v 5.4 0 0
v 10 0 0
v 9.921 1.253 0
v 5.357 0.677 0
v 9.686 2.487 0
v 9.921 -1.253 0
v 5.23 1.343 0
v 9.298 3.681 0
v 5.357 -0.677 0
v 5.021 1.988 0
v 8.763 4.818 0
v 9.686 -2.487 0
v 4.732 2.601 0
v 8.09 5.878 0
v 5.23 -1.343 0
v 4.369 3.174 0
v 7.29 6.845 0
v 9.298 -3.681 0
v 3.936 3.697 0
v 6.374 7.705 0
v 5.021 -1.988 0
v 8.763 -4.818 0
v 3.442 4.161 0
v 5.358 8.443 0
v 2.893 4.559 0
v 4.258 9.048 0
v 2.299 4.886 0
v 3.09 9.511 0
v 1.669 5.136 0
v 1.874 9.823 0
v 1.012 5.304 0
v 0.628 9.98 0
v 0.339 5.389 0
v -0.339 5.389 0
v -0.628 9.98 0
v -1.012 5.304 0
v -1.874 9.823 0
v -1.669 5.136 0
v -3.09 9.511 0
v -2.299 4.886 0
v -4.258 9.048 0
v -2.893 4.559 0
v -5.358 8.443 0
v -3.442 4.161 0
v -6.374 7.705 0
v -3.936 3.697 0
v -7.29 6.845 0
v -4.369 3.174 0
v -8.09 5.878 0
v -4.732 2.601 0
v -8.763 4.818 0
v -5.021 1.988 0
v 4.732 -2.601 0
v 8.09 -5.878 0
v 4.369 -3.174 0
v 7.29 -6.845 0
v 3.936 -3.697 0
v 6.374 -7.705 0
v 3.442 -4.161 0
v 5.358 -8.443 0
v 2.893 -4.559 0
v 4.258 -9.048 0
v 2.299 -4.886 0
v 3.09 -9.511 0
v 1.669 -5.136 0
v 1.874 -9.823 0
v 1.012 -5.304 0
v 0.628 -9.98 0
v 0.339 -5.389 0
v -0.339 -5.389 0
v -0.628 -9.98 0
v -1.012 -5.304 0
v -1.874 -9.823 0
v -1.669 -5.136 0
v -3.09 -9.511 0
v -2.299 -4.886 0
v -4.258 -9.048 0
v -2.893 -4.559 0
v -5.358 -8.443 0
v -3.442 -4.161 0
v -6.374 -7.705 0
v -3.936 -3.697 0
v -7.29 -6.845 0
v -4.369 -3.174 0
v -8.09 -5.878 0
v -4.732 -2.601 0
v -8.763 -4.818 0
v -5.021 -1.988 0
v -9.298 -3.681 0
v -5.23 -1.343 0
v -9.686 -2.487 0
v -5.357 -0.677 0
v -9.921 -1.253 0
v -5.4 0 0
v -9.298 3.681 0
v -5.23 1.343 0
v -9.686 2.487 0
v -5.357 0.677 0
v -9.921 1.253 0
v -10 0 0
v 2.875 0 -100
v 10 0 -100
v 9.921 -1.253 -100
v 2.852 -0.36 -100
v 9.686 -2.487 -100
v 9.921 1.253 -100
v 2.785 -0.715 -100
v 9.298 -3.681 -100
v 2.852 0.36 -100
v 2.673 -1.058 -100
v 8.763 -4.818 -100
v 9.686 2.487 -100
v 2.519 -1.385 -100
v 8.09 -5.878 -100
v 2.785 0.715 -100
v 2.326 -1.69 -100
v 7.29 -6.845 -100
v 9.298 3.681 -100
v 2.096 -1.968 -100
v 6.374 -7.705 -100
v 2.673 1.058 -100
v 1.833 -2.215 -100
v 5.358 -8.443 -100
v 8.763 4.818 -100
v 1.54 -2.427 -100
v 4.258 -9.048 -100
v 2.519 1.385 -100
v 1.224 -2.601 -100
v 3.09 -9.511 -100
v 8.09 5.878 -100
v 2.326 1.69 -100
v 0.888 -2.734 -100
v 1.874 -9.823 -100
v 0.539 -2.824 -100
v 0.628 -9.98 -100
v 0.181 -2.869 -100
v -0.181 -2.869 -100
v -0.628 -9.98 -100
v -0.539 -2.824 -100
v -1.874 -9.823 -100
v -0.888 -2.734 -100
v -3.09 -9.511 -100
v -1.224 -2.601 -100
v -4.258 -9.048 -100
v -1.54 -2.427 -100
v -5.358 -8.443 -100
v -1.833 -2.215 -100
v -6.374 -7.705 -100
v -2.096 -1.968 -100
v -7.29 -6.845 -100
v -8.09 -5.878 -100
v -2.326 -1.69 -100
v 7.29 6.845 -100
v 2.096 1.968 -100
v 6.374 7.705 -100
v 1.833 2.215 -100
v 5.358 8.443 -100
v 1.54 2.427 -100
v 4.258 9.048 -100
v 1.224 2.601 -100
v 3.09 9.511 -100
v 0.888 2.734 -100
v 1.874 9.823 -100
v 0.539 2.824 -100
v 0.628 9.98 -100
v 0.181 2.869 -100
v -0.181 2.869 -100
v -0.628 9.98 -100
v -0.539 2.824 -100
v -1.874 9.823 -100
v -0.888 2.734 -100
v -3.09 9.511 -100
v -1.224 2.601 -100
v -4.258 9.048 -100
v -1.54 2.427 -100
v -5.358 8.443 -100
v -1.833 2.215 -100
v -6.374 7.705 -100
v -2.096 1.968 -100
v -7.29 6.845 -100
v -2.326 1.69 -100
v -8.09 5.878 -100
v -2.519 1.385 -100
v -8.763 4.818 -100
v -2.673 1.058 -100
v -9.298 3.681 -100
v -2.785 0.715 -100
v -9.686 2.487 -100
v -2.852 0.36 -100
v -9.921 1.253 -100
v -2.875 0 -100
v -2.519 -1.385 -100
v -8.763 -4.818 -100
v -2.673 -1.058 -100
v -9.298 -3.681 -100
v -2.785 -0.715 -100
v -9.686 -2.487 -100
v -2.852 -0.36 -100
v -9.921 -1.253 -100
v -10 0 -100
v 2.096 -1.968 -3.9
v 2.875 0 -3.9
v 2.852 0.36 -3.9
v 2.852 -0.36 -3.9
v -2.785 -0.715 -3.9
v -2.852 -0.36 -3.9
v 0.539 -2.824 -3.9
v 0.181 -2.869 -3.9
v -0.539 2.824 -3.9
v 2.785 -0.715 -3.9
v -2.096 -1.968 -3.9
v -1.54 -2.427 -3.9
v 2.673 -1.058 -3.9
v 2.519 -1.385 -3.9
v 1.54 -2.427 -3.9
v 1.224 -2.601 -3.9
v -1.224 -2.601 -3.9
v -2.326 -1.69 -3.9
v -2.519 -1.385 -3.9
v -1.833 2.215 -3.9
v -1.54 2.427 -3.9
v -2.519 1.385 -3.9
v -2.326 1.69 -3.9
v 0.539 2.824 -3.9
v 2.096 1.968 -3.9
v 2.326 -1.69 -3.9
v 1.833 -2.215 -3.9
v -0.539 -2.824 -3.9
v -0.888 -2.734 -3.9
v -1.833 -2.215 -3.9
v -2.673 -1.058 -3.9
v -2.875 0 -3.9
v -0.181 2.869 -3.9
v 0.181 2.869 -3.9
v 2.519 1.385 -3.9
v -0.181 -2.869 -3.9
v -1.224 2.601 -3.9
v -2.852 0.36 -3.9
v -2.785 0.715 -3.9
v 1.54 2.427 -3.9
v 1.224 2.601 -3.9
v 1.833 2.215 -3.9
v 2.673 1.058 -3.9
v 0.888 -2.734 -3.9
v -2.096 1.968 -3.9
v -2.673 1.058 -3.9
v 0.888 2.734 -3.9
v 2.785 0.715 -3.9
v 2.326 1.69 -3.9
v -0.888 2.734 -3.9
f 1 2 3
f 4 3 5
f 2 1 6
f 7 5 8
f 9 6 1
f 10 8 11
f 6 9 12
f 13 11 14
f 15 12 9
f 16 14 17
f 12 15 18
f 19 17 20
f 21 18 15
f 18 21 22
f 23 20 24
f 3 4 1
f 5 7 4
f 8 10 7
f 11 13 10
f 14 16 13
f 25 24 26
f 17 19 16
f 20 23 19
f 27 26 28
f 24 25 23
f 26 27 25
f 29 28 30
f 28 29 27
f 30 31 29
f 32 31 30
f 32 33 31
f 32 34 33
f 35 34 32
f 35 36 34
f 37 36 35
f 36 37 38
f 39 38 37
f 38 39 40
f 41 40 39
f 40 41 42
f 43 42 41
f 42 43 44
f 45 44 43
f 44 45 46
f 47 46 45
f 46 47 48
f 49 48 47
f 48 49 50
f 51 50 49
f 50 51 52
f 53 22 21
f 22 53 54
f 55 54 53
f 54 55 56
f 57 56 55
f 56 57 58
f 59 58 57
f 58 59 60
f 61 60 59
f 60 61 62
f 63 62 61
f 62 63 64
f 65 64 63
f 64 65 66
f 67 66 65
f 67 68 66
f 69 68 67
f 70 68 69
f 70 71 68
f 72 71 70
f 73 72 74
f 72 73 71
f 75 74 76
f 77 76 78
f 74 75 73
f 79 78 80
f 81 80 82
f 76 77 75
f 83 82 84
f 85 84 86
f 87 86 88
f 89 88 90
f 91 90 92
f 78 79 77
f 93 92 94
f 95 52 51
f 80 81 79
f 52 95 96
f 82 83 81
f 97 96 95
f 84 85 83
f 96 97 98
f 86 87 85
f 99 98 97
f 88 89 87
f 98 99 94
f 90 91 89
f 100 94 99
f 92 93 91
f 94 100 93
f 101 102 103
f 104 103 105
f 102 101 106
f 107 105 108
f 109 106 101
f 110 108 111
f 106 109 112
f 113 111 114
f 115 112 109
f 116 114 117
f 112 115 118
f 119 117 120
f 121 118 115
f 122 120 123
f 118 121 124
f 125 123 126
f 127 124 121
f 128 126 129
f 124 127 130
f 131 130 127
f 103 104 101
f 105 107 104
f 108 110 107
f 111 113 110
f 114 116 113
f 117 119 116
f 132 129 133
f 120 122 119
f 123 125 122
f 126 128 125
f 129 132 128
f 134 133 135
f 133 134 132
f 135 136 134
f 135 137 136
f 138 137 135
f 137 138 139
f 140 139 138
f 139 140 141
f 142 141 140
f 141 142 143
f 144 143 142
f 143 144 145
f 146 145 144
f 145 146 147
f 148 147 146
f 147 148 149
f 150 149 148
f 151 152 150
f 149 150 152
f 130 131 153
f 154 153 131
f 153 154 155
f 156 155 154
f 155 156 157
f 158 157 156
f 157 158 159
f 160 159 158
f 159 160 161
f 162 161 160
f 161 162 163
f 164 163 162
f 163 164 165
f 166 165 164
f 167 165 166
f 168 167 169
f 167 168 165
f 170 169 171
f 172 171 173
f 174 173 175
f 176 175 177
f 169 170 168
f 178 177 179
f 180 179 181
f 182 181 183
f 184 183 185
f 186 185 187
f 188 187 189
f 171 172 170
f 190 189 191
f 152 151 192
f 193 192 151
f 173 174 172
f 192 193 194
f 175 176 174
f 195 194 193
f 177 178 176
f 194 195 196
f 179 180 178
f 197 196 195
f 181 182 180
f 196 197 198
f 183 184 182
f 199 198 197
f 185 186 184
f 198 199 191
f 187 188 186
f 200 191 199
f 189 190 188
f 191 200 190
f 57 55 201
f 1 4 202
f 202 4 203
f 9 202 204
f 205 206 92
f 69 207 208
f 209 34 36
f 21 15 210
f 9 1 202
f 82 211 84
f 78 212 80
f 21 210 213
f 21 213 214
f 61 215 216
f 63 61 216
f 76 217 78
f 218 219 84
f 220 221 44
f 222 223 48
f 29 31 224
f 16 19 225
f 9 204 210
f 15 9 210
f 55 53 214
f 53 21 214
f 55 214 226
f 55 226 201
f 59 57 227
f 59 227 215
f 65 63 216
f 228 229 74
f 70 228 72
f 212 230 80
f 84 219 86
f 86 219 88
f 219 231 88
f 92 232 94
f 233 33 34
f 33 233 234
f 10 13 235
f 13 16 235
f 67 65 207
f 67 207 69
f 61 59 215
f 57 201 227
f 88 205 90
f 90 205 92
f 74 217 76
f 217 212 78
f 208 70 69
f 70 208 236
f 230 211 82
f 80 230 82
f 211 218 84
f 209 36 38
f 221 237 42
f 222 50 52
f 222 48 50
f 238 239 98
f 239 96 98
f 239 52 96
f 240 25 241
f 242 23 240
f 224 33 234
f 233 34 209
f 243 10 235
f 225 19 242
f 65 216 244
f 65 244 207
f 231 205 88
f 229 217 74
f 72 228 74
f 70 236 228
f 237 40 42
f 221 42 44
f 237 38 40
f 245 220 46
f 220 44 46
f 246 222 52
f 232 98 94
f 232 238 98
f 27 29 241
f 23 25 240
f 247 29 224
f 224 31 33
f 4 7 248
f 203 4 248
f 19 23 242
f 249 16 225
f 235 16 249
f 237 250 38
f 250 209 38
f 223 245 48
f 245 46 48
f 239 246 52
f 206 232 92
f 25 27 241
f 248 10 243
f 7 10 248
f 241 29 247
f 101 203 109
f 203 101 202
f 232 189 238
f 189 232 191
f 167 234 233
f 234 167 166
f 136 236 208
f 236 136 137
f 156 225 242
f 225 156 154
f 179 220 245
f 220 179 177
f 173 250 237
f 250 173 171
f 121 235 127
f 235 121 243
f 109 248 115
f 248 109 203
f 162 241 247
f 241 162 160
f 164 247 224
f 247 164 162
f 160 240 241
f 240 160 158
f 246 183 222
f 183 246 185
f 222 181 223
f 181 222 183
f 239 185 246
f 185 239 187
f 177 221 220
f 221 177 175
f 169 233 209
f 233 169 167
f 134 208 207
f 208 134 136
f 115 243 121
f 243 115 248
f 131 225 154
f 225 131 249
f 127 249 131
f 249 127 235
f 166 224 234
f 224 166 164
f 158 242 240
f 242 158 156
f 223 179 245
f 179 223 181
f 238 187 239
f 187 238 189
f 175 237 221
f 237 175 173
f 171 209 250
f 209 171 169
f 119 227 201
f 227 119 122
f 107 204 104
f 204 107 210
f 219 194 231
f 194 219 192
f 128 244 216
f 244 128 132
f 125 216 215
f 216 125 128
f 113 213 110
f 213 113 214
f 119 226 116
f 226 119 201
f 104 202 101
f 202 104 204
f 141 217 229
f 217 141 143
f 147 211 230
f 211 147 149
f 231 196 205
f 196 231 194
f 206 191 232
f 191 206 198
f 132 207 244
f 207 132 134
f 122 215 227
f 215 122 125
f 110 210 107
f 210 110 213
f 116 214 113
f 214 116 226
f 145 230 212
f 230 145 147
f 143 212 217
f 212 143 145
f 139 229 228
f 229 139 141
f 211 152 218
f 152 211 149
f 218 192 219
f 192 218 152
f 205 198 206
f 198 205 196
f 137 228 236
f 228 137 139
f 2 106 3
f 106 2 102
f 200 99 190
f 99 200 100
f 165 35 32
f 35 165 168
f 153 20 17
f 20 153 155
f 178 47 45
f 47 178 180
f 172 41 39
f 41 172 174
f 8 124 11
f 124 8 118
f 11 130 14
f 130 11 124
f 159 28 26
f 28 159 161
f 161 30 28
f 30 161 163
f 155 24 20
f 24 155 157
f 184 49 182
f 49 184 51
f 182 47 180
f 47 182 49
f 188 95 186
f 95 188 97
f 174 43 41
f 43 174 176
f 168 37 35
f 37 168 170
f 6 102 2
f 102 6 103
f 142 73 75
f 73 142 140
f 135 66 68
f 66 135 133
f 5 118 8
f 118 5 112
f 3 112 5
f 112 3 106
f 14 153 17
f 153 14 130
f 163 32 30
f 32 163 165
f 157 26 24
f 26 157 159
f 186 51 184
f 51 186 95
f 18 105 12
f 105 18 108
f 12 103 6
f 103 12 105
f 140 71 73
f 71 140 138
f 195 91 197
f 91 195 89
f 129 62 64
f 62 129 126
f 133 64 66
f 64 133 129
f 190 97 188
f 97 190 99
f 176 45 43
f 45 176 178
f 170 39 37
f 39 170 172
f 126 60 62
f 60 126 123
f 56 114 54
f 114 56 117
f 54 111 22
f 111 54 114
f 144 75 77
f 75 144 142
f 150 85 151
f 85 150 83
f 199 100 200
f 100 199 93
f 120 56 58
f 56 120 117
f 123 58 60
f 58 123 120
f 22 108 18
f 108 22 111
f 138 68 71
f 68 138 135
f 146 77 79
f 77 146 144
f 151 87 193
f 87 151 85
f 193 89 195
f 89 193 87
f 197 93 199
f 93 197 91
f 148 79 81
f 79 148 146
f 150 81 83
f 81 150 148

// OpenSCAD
$fn = 50;


difference() {
	union() {
		translate(v = [0, 0, -100.0000000000]) {
			cylinder(h = 100, r = 10.0000000000);
		}
		cylinder(h = 0, r = 19.0000000000);
	}
	union() {
		translate(v = [0, 0, 0]) {
			rotate(a = [0, 0, 0]) {
				difference() {
					union() {
						#translate(v = [0, 0, -100.0000000000]) {
							cylinder(h = 100, r = 2.6000000000);
						}
						#translate(v = [0, 0, -3.9000000000]) {
							cylinder(h = 3.9000000000, r = 10.0000000000, r1 = 2.8750000000, r2 = 5.4000000000);
						}
						#translate(v = [0, 0, -100.0000000000]) {
							cylinder(h = 100, r = 2.8750000000);
						}
						#translate(v = [0, 0, -100.0000000000]) {
							cylinder(h = 100, r = 2.6000000000);
						}
					}
					union();
				}
			}
		}
	}
}
